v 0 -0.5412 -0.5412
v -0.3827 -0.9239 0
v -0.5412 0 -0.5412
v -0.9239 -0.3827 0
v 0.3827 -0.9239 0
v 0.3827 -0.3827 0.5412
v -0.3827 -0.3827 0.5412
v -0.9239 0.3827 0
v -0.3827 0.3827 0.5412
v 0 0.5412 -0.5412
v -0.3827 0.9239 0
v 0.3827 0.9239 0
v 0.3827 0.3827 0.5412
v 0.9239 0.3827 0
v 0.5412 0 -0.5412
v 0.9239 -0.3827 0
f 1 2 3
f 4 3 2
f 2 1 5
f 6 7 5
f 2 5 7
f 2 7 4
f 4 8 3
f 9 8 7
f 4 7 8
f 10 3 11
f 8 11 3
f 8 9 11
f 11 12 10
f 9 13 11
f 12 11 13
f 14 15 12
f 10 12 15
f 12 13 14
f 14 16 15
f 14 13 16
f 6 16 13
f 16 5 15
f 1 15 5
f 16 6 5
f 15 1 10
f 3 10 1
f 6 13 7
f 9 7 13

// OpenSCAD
polyhedron( points = [[-0.382683431942935, -0.92387953238582, -5.31079946999472e-18], [-0.92387953197291, -0.382683432282952, -5.31079946999472e-18], [-0.92387953227038, 0.382683432334405, -5.31079946999472e-18], [-0.382683432661095, 0.923879532388677, -5.31079946999472e-18], [0.382683431624436, 0.923879532388677, -5.31079946999472e-18], [0.923879531703014, 0.382683432334413, -5.31079946999472e-18], [0.923879532069196, -0.382683432282953, -5.31079946999472e-18], [0.382683432508509, -0.92387953238582, -5.31079946999472e-18], [3.02625796035458e-10, -0.541196099811374, -0.541196099805809], [-0.541196099718759, 6.78235827353661e-12, -0.541196099610562], [3.51221990424072e-10, 0.541196099711152, -0.541196099874533], [0.541196100175605, -2.25804996729193e-10, -0.541196099874533], [-0.382683431908573, -0.382683432058785, 0.541196099805809], [0.382683432335475, -0.382683432254033, 0.541196099610562], [0.38268343179666, 0.382683432275748, 0.541196099874533], [-0.382683432392091, 0.382683432247689, 0.541196099874533]], faces = [[0, 1, 9, 8], [0, 8, 7], [0, 7, 13, 12], [0, 12, 1], [1, 2, 9], [1, 12, 15, 2], [2, 3, 10, 9], [2, 15, 3], [3, 4, 10], [3, 15, 14, 4], [4, 5, 11, 10], [4, 14, 5], [5, 6, 11], [5, 14, 13, 6], [6, 7, 8, 11], [6, 13, 7], [8, 9, 10, 11], [12, 13, 14, 15]]);
